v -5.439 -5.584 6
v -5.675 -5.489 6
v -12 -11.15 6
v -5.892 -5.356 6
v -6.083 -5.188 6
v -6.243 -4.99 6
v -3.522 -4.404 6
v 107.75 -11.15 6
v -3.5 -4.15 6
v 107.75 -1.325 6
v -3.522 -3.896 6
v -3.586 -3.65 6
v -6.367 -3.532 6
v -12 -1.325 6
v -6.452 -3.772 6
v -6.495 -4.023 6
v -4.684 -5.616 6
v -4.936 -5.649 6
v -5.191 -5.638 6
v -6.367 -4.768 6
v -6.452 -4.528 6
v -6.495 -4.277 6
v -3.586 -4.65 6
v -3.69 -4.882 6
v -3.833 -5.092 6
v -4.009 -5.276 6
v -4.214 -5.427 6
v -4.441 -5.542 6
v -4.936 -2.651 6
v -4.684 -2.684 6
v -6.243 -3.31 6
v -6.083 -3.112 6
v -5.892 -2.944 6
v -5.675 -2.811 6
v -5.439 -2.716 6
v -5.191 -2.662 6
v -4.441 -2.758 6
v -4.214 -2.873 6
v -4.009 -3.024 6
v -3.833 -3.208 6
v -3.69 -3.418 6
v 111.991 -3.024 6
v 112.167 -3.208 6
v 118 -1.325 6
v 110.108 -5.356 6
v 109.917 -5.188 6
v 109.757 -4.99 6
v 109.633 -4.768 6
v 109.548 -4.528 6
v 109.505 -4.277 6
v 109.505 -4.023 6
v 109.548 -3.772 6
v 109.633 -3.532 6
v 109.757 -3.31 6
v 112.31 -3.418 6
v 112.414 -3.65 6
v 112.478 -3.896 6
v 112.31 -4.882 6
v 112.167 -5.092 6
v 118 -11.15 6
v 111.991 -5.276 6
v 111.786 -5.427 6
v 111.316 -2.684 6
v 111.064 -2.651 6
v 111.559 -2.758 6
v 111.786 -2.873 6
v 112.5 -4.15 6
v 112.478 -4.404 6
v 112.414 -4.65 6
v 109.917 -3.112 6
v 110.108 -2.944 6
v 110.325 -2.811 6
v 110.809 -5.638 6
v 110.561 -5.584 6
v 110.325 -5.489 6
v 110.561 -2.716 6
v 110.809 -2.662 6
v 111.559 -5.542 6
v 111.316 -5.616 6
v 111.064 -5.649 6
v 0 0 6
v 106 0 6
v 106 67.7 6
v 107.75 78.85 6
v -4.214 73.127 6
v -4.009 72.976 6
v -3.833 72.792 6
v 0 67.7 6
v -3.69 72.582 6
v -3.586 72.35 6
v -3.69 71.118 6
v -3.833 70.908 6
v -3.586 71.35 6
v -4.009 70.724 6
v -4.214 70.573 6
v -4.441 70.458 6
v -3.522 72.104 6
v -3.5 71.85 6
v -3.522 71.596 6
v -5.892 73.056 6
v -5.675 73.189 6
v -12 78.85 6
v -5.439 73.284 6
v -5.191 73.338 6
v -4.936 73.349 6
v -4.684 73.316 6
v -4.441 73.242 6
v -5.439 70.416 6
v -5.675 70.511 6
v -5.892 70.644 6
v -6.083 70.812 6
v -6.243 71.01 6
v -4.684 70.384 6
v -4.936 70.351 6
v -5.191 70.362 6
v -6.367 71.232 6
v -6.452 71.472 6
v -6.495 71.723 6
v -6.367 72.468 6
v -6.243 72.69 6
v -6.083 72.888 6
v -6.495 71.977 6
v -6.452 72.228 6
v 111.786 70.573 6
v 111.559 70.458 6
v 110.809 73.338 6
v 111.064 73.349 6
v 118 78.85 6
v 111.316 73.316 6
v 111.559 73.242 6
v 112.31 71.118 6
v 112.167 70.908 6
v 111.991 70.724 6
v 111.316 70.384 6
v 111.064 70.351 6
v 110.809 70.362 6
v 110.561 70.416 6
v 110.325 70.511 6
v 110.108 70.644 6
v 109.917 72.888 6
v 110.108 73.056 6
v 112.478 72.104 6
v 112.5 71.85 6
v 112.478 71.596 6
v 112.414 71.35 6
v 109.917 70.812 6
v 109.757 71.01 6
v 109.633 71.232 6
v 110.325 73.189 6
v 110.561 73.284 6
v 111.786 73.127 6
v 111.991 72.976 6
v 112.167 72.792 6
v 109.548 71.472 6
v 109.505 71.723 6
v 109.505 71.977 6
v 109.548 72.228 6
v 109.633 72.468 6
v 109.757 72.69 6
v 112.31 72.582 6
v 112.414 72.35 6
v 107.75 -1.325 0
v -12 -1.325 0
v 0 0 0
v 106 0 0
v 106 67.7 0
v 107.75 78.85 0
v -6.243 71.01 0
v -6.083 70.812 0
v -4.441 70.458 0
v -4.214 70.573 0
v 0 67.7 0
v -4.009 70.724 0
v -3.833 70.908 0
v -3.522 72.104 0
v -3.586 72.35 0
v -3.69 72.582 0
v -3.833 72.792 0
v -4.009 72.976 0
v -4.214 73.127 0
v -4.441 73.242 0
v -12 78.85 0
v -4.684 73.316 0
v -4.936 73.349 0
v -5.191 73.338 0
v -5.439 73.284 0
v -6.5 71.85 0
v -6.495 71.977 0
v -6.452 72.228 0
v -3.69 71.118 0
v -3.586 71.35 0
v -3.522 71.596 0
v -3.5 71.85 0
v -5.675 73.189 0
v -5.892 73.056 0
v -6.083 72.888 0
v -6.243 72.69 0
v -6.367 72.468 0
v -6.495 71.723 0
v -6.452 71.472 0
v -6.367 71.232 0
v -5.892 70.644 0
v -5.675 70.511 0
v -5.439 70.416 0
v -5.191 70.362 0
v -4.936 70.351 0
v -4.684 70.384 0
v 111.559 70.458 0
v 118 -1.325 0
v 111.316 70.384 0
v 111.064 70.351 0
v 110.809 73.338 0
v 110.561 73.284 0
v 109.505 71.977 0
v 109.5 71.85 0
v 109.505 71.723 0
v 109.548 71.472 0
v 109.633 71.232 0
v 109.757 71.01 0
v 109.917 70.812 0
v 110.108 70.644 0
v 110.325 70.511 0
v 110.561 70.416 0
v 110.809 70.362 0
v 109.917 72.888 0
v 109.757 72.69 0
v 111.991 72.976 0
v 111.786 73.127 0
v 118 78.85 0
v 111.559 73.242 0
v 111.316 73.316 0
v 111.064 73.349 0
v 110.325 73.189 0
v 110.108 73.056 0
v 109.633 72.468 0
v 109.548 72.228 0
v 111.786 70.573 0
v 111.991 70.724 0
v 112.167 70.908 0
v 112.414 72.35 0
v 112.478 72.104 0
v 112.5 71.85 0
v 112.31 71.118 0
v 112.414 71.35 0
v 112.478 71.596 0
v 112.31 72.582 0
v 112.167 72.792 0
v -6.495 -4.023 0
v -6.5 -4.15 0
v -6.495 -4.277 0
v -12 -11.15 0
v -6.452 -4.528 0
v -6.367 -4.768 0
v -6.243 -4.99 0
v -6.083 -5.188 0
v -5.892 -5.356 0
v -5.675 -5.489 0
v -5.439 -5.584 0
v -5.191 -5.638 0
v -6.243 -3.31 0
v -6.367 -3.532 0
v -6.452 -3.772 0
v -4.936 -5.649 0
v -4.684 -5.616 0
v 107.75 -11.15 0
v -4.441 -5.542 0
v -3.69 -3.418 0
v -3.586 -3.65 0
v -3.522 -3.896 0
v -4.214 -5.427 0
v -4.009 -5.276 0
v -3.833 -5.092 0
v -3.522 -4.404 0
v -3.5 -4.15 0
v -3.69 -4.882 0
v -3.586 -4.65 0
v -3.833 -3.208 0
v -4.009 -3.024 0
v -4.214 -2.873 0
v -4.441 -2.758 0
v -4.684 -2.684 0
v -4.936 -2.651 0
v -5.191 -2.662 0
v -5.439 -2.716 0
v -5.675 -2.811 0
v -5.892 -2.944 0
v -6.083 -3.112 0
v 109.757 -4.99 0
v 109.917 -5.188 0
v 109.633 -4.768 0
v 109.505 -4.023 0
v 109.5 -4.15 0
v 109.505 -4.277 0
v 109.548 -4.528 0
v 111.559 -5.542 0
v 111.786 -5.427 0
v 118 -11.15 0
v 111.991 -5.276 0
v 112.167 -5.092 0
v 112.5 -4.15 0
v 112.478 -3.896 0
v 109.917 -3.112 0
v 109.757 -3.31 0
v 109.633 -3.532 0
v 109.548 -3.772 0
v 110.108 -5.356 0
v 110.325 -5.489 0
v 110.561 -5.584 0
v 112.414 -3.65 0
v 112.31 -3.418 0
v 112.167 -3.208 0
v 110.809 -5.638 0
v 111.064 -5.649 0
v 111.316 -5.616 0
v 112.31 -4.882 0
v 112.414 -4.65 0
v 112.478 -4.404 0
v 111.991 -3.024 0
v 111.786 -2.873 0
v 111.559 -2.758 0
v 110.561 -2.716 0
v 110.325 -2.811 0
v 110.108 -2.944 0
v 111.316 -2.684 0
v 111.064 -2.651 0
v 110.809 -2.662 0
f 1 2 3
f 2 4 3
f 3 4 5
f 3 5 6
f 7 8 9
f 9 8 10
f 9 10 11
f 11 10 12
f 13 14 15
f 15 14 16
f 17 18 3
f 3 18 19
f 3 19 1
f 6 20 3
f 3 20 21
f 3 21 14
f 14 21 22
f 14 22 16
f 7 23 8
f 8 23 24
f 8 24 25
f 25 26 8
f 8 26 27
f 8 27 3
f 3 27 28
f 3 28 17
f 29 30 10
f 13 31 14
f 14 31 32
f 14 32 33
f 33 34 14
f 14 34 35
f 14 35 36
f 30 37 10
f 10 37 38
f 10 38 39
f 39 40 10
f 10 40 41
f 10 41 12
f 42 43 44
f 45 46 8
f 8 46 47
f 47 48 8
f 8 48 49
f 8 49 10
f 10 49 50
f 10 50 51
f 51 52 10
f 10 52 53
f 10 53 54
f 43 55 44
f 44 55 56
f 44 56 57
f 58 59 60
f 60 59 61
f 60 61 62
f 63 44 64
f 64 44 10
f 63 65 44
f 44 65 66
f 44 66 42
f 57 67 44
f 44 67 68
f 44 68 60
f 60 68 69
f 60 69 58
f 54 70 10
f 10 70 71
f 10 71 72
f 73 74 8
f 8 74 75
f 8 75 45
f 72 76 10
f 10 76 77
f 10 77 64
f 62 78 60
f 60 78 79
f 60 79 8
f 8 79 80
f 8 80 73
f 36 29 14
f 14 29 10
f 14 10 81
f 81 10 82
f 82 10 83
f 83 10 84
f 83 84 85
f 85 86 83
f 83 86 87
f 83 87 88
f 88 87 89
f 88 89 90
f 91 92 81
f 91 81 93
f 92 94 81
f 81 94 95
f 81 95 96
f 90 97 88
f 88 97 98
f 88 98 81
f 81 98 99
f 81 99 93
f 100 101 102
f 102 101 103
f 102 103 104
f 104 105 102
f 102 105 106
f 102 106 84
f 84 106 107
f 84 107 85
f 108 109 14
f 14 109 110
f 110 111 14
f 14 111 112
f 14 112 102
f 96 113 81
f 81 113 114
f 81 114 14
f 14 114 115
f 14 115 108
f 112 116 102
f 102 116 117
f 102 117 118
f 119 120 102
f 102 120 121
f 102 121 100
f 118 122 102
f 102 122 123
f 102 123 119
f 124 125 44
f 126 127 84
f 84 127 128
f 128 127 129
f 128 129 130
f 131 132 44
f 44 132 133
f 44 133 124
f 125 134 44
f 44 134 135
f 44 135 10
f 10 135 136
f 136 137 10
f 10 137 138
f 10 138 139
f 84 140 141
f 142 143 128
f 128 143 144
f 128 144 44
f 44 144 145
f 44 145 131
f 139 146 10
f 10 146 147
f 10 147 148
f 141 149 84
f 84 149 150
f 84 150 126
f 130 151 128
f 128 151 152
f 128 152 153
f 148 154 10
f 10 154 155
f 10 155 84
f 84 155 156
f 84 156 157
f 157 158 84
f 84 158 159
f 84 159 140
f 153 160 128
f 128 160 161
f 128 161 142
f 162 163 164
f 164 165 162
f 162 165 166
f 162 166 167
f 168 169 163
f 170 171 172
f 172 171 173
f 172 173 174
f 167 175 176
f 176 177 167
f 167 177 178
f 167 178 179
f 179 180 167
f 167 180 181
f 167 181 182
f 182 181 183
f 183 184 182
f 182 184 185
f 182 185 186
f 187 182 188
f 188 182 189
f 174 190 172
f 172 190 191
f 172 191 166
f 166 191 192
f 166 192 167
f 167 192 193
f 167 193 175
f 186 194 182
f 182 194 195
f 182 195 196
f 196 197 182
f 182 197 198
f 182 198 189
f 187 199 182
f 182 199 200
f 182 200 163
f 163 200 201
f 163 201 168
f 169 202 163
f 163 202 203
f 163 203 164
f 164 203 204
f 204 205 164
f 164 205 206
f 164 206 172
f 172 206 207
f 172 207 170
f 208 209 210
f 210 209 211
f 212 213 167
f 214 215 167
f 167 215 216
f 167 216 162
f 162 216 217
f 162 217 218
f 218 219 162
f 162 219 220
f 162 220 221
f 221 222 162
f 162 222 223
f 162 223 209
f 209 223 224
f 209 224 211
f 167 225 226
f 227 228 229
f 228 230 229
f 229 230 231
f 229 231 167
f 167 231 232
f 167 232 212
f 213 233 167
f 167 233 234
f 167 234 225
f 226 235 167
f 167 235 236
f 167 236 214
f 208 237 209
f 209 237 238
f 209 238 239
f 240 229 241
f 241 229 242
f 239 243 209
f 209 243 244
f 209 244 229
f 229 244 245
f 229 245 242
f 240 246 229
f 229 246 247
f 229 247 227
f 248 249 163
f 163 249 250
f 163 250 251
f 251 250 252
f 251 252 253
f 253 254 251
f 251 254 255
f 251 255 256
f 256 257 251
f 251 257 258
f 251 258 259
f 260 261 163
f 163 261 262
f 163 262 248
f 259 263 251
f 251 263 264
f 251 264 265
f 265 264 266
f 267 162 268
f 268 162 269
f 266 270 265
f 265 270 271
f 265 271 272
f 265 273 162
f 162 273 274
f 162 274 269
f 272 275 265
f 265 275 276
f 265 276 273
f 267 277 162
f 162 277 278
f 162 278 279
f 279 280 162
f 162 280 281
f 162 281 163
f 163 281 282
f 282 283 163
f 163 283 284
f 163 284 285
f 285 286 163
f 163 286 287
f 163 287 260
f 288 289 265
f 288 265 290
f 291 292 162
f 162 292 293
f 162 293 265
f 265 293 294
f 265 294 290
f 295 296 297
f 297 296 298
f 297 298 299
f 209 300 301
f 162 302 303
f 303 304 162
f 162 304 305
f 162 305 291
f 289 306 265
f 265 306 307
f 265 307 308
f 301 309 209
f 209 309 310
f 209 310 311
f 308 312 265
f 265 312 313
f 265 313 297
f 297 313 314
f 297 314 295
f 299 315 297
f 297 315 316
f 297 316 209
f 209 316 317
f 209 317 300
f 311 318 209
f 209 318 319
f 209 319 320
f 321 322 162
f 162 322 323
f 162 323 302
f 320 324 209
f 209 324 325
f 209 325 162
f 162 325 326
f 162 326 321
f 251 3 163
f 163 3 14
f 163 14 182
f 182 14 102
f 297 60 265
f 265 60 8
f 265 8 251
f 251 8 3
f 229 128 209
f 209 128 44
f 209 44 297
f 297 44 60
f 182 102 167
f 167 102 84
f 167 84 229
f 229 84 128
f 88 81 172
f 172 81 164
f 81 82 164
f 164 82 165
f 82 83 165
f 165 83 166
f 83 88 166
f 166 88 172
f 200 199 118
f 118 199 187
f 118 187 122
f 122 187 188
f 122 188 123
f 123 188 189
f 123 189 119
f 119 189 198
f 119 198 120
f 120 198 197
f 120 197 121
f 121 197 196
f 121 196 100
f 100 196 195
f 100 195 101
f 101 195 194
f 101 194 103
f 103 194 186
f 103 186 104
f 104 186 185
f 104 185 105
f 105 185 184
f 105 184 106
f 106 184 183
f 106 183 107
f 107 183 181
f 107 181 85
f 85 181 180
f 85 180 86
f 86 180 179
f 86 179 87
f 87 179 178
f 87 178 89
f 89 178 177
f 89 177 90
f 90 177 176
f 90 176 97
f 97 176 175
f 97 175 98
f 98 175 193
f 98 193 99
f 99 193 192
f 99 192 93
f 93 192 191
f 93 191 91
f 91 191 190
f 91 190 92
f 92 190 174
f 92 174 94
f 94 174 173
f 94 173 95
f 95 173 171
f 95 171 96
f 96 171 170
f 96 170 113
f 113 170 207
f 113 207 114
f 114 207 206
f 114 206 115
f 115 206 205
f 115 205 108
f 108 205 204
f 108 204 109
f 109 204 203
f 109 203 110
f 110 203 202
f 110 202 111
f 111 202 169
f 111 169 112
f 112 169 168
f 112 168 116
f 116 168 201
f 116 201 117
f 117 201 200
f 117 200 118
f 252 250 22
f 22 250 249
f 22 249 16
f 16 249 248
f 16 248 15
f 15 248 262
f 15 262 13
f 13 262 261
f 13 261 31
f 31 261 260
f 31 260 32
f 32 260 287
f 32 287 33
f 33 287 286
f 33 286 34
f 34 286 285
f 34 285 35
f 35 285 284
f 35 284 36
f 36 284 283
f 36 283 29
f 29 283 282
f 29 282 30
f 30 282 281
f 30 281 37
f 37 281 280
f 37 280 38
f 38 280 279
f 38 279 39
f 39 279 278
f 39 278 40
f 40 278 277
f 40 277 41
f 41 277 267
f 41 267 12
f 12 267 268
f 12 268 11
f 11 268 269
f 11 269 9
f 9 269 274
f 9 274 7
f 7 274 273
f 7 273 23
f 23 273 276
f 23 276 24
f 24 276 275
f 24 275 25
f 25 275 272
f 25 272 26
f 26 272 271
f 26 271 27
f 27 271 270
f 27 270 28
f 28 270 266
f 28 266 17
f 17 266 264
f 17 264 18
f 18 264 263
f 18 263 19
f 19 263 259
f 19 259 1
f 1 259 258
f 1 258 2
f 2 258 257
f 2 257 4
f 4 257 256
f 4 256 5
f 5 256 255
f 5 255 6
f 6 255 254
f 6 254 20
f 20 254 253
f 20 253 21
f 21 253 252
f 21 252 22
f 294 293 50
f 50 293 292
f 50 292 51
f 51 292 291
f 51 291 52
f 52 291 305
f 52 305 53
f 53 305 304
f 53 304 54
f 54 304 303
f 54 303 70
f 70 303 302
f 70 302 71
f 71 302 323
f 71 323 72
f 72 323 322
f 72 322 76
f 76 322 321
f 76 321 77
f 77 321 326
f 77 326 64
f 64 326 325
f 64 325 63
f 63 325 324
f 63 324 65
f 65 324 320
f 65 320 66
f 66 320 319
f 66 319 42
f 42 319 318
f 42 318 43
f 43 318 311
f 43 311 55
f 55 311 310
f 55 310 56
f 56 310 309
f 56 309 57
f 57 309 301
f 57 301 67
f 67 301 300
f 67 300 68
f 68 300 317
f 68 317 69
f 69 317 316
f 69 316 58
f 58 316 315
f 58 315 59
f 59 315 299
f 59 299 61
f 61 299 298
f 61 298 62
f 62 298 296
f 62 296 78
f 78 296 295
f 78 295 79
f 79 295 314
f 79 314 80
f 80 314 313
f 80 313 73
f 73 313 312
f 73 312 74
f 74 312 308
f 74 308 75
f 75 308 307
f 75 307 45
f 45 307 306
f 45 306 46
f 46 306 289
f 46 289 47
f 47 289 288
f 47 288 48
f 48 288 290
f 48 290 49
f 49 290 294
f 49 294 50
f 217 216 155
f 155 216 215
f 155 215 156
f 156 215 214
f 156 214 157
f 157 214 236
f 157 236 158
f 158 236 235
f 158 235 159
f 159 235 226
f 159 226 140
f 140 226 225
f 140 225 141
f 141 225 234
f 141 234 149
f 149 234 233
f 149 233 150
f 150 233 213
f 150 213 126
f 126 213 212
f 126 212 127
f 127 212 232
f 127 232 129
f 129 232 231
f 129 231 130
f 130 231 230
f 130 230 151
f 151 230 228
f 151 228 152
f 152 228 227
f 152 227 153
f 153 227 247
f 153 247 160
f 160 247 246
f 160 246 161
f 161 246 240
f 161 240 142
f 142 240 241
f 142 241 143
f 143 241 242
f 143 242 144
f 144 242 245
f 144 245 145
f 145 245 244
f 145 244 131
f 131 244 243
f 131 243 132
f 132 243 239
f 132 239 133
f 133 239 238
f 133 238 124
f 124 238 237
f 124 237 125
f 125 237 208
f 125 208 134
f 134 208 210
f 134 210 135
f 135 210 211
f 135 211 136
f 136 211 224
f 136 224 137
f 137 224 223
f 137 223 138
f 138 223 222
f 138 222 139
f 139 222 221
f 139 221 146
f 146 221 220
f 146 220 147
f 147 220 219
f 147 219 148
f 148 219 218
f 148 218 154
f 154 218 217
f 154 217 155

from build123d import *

# Parameters (mm, degrees)
SKETCH1_W             = 130
SKETCH1_H             = 90
SKETCH1_W_2           = 106
SKETCH1_H_2           = 67.7
BOSS_EXTRUDE1_DEPTH   = 6
F_3_0MM_DOWEL_HOLE1_D = 3


with BuildPart() as part:
    # Sketch1 → Boss-Extrude1 (new body)
    with BuildSketch(Plane.XY):
        with Locations((53, 33.85)):
            Rectangle(SKETCH1_W, SKETCH1_H)
        with Locations((53, 33.85)):
            Rectangle(SKETCH1_W_2, SKETCH1_H_2, mode=Mode.SUBTRACT)
    extrude(amount=BOSS_EXTRUDE1_DEPTH)

    # Ø3.0mm Dowel Hole1 (through all)
    with Locations(Plane.XY.offset(6)):
        with Locations((111, 71.85), (111, -4.15), (-5, -4.15), (-5, 71.85)):
            Hole(F_3_0MM_DOWEL_HOLE1_D / 2)


solid = part.part
